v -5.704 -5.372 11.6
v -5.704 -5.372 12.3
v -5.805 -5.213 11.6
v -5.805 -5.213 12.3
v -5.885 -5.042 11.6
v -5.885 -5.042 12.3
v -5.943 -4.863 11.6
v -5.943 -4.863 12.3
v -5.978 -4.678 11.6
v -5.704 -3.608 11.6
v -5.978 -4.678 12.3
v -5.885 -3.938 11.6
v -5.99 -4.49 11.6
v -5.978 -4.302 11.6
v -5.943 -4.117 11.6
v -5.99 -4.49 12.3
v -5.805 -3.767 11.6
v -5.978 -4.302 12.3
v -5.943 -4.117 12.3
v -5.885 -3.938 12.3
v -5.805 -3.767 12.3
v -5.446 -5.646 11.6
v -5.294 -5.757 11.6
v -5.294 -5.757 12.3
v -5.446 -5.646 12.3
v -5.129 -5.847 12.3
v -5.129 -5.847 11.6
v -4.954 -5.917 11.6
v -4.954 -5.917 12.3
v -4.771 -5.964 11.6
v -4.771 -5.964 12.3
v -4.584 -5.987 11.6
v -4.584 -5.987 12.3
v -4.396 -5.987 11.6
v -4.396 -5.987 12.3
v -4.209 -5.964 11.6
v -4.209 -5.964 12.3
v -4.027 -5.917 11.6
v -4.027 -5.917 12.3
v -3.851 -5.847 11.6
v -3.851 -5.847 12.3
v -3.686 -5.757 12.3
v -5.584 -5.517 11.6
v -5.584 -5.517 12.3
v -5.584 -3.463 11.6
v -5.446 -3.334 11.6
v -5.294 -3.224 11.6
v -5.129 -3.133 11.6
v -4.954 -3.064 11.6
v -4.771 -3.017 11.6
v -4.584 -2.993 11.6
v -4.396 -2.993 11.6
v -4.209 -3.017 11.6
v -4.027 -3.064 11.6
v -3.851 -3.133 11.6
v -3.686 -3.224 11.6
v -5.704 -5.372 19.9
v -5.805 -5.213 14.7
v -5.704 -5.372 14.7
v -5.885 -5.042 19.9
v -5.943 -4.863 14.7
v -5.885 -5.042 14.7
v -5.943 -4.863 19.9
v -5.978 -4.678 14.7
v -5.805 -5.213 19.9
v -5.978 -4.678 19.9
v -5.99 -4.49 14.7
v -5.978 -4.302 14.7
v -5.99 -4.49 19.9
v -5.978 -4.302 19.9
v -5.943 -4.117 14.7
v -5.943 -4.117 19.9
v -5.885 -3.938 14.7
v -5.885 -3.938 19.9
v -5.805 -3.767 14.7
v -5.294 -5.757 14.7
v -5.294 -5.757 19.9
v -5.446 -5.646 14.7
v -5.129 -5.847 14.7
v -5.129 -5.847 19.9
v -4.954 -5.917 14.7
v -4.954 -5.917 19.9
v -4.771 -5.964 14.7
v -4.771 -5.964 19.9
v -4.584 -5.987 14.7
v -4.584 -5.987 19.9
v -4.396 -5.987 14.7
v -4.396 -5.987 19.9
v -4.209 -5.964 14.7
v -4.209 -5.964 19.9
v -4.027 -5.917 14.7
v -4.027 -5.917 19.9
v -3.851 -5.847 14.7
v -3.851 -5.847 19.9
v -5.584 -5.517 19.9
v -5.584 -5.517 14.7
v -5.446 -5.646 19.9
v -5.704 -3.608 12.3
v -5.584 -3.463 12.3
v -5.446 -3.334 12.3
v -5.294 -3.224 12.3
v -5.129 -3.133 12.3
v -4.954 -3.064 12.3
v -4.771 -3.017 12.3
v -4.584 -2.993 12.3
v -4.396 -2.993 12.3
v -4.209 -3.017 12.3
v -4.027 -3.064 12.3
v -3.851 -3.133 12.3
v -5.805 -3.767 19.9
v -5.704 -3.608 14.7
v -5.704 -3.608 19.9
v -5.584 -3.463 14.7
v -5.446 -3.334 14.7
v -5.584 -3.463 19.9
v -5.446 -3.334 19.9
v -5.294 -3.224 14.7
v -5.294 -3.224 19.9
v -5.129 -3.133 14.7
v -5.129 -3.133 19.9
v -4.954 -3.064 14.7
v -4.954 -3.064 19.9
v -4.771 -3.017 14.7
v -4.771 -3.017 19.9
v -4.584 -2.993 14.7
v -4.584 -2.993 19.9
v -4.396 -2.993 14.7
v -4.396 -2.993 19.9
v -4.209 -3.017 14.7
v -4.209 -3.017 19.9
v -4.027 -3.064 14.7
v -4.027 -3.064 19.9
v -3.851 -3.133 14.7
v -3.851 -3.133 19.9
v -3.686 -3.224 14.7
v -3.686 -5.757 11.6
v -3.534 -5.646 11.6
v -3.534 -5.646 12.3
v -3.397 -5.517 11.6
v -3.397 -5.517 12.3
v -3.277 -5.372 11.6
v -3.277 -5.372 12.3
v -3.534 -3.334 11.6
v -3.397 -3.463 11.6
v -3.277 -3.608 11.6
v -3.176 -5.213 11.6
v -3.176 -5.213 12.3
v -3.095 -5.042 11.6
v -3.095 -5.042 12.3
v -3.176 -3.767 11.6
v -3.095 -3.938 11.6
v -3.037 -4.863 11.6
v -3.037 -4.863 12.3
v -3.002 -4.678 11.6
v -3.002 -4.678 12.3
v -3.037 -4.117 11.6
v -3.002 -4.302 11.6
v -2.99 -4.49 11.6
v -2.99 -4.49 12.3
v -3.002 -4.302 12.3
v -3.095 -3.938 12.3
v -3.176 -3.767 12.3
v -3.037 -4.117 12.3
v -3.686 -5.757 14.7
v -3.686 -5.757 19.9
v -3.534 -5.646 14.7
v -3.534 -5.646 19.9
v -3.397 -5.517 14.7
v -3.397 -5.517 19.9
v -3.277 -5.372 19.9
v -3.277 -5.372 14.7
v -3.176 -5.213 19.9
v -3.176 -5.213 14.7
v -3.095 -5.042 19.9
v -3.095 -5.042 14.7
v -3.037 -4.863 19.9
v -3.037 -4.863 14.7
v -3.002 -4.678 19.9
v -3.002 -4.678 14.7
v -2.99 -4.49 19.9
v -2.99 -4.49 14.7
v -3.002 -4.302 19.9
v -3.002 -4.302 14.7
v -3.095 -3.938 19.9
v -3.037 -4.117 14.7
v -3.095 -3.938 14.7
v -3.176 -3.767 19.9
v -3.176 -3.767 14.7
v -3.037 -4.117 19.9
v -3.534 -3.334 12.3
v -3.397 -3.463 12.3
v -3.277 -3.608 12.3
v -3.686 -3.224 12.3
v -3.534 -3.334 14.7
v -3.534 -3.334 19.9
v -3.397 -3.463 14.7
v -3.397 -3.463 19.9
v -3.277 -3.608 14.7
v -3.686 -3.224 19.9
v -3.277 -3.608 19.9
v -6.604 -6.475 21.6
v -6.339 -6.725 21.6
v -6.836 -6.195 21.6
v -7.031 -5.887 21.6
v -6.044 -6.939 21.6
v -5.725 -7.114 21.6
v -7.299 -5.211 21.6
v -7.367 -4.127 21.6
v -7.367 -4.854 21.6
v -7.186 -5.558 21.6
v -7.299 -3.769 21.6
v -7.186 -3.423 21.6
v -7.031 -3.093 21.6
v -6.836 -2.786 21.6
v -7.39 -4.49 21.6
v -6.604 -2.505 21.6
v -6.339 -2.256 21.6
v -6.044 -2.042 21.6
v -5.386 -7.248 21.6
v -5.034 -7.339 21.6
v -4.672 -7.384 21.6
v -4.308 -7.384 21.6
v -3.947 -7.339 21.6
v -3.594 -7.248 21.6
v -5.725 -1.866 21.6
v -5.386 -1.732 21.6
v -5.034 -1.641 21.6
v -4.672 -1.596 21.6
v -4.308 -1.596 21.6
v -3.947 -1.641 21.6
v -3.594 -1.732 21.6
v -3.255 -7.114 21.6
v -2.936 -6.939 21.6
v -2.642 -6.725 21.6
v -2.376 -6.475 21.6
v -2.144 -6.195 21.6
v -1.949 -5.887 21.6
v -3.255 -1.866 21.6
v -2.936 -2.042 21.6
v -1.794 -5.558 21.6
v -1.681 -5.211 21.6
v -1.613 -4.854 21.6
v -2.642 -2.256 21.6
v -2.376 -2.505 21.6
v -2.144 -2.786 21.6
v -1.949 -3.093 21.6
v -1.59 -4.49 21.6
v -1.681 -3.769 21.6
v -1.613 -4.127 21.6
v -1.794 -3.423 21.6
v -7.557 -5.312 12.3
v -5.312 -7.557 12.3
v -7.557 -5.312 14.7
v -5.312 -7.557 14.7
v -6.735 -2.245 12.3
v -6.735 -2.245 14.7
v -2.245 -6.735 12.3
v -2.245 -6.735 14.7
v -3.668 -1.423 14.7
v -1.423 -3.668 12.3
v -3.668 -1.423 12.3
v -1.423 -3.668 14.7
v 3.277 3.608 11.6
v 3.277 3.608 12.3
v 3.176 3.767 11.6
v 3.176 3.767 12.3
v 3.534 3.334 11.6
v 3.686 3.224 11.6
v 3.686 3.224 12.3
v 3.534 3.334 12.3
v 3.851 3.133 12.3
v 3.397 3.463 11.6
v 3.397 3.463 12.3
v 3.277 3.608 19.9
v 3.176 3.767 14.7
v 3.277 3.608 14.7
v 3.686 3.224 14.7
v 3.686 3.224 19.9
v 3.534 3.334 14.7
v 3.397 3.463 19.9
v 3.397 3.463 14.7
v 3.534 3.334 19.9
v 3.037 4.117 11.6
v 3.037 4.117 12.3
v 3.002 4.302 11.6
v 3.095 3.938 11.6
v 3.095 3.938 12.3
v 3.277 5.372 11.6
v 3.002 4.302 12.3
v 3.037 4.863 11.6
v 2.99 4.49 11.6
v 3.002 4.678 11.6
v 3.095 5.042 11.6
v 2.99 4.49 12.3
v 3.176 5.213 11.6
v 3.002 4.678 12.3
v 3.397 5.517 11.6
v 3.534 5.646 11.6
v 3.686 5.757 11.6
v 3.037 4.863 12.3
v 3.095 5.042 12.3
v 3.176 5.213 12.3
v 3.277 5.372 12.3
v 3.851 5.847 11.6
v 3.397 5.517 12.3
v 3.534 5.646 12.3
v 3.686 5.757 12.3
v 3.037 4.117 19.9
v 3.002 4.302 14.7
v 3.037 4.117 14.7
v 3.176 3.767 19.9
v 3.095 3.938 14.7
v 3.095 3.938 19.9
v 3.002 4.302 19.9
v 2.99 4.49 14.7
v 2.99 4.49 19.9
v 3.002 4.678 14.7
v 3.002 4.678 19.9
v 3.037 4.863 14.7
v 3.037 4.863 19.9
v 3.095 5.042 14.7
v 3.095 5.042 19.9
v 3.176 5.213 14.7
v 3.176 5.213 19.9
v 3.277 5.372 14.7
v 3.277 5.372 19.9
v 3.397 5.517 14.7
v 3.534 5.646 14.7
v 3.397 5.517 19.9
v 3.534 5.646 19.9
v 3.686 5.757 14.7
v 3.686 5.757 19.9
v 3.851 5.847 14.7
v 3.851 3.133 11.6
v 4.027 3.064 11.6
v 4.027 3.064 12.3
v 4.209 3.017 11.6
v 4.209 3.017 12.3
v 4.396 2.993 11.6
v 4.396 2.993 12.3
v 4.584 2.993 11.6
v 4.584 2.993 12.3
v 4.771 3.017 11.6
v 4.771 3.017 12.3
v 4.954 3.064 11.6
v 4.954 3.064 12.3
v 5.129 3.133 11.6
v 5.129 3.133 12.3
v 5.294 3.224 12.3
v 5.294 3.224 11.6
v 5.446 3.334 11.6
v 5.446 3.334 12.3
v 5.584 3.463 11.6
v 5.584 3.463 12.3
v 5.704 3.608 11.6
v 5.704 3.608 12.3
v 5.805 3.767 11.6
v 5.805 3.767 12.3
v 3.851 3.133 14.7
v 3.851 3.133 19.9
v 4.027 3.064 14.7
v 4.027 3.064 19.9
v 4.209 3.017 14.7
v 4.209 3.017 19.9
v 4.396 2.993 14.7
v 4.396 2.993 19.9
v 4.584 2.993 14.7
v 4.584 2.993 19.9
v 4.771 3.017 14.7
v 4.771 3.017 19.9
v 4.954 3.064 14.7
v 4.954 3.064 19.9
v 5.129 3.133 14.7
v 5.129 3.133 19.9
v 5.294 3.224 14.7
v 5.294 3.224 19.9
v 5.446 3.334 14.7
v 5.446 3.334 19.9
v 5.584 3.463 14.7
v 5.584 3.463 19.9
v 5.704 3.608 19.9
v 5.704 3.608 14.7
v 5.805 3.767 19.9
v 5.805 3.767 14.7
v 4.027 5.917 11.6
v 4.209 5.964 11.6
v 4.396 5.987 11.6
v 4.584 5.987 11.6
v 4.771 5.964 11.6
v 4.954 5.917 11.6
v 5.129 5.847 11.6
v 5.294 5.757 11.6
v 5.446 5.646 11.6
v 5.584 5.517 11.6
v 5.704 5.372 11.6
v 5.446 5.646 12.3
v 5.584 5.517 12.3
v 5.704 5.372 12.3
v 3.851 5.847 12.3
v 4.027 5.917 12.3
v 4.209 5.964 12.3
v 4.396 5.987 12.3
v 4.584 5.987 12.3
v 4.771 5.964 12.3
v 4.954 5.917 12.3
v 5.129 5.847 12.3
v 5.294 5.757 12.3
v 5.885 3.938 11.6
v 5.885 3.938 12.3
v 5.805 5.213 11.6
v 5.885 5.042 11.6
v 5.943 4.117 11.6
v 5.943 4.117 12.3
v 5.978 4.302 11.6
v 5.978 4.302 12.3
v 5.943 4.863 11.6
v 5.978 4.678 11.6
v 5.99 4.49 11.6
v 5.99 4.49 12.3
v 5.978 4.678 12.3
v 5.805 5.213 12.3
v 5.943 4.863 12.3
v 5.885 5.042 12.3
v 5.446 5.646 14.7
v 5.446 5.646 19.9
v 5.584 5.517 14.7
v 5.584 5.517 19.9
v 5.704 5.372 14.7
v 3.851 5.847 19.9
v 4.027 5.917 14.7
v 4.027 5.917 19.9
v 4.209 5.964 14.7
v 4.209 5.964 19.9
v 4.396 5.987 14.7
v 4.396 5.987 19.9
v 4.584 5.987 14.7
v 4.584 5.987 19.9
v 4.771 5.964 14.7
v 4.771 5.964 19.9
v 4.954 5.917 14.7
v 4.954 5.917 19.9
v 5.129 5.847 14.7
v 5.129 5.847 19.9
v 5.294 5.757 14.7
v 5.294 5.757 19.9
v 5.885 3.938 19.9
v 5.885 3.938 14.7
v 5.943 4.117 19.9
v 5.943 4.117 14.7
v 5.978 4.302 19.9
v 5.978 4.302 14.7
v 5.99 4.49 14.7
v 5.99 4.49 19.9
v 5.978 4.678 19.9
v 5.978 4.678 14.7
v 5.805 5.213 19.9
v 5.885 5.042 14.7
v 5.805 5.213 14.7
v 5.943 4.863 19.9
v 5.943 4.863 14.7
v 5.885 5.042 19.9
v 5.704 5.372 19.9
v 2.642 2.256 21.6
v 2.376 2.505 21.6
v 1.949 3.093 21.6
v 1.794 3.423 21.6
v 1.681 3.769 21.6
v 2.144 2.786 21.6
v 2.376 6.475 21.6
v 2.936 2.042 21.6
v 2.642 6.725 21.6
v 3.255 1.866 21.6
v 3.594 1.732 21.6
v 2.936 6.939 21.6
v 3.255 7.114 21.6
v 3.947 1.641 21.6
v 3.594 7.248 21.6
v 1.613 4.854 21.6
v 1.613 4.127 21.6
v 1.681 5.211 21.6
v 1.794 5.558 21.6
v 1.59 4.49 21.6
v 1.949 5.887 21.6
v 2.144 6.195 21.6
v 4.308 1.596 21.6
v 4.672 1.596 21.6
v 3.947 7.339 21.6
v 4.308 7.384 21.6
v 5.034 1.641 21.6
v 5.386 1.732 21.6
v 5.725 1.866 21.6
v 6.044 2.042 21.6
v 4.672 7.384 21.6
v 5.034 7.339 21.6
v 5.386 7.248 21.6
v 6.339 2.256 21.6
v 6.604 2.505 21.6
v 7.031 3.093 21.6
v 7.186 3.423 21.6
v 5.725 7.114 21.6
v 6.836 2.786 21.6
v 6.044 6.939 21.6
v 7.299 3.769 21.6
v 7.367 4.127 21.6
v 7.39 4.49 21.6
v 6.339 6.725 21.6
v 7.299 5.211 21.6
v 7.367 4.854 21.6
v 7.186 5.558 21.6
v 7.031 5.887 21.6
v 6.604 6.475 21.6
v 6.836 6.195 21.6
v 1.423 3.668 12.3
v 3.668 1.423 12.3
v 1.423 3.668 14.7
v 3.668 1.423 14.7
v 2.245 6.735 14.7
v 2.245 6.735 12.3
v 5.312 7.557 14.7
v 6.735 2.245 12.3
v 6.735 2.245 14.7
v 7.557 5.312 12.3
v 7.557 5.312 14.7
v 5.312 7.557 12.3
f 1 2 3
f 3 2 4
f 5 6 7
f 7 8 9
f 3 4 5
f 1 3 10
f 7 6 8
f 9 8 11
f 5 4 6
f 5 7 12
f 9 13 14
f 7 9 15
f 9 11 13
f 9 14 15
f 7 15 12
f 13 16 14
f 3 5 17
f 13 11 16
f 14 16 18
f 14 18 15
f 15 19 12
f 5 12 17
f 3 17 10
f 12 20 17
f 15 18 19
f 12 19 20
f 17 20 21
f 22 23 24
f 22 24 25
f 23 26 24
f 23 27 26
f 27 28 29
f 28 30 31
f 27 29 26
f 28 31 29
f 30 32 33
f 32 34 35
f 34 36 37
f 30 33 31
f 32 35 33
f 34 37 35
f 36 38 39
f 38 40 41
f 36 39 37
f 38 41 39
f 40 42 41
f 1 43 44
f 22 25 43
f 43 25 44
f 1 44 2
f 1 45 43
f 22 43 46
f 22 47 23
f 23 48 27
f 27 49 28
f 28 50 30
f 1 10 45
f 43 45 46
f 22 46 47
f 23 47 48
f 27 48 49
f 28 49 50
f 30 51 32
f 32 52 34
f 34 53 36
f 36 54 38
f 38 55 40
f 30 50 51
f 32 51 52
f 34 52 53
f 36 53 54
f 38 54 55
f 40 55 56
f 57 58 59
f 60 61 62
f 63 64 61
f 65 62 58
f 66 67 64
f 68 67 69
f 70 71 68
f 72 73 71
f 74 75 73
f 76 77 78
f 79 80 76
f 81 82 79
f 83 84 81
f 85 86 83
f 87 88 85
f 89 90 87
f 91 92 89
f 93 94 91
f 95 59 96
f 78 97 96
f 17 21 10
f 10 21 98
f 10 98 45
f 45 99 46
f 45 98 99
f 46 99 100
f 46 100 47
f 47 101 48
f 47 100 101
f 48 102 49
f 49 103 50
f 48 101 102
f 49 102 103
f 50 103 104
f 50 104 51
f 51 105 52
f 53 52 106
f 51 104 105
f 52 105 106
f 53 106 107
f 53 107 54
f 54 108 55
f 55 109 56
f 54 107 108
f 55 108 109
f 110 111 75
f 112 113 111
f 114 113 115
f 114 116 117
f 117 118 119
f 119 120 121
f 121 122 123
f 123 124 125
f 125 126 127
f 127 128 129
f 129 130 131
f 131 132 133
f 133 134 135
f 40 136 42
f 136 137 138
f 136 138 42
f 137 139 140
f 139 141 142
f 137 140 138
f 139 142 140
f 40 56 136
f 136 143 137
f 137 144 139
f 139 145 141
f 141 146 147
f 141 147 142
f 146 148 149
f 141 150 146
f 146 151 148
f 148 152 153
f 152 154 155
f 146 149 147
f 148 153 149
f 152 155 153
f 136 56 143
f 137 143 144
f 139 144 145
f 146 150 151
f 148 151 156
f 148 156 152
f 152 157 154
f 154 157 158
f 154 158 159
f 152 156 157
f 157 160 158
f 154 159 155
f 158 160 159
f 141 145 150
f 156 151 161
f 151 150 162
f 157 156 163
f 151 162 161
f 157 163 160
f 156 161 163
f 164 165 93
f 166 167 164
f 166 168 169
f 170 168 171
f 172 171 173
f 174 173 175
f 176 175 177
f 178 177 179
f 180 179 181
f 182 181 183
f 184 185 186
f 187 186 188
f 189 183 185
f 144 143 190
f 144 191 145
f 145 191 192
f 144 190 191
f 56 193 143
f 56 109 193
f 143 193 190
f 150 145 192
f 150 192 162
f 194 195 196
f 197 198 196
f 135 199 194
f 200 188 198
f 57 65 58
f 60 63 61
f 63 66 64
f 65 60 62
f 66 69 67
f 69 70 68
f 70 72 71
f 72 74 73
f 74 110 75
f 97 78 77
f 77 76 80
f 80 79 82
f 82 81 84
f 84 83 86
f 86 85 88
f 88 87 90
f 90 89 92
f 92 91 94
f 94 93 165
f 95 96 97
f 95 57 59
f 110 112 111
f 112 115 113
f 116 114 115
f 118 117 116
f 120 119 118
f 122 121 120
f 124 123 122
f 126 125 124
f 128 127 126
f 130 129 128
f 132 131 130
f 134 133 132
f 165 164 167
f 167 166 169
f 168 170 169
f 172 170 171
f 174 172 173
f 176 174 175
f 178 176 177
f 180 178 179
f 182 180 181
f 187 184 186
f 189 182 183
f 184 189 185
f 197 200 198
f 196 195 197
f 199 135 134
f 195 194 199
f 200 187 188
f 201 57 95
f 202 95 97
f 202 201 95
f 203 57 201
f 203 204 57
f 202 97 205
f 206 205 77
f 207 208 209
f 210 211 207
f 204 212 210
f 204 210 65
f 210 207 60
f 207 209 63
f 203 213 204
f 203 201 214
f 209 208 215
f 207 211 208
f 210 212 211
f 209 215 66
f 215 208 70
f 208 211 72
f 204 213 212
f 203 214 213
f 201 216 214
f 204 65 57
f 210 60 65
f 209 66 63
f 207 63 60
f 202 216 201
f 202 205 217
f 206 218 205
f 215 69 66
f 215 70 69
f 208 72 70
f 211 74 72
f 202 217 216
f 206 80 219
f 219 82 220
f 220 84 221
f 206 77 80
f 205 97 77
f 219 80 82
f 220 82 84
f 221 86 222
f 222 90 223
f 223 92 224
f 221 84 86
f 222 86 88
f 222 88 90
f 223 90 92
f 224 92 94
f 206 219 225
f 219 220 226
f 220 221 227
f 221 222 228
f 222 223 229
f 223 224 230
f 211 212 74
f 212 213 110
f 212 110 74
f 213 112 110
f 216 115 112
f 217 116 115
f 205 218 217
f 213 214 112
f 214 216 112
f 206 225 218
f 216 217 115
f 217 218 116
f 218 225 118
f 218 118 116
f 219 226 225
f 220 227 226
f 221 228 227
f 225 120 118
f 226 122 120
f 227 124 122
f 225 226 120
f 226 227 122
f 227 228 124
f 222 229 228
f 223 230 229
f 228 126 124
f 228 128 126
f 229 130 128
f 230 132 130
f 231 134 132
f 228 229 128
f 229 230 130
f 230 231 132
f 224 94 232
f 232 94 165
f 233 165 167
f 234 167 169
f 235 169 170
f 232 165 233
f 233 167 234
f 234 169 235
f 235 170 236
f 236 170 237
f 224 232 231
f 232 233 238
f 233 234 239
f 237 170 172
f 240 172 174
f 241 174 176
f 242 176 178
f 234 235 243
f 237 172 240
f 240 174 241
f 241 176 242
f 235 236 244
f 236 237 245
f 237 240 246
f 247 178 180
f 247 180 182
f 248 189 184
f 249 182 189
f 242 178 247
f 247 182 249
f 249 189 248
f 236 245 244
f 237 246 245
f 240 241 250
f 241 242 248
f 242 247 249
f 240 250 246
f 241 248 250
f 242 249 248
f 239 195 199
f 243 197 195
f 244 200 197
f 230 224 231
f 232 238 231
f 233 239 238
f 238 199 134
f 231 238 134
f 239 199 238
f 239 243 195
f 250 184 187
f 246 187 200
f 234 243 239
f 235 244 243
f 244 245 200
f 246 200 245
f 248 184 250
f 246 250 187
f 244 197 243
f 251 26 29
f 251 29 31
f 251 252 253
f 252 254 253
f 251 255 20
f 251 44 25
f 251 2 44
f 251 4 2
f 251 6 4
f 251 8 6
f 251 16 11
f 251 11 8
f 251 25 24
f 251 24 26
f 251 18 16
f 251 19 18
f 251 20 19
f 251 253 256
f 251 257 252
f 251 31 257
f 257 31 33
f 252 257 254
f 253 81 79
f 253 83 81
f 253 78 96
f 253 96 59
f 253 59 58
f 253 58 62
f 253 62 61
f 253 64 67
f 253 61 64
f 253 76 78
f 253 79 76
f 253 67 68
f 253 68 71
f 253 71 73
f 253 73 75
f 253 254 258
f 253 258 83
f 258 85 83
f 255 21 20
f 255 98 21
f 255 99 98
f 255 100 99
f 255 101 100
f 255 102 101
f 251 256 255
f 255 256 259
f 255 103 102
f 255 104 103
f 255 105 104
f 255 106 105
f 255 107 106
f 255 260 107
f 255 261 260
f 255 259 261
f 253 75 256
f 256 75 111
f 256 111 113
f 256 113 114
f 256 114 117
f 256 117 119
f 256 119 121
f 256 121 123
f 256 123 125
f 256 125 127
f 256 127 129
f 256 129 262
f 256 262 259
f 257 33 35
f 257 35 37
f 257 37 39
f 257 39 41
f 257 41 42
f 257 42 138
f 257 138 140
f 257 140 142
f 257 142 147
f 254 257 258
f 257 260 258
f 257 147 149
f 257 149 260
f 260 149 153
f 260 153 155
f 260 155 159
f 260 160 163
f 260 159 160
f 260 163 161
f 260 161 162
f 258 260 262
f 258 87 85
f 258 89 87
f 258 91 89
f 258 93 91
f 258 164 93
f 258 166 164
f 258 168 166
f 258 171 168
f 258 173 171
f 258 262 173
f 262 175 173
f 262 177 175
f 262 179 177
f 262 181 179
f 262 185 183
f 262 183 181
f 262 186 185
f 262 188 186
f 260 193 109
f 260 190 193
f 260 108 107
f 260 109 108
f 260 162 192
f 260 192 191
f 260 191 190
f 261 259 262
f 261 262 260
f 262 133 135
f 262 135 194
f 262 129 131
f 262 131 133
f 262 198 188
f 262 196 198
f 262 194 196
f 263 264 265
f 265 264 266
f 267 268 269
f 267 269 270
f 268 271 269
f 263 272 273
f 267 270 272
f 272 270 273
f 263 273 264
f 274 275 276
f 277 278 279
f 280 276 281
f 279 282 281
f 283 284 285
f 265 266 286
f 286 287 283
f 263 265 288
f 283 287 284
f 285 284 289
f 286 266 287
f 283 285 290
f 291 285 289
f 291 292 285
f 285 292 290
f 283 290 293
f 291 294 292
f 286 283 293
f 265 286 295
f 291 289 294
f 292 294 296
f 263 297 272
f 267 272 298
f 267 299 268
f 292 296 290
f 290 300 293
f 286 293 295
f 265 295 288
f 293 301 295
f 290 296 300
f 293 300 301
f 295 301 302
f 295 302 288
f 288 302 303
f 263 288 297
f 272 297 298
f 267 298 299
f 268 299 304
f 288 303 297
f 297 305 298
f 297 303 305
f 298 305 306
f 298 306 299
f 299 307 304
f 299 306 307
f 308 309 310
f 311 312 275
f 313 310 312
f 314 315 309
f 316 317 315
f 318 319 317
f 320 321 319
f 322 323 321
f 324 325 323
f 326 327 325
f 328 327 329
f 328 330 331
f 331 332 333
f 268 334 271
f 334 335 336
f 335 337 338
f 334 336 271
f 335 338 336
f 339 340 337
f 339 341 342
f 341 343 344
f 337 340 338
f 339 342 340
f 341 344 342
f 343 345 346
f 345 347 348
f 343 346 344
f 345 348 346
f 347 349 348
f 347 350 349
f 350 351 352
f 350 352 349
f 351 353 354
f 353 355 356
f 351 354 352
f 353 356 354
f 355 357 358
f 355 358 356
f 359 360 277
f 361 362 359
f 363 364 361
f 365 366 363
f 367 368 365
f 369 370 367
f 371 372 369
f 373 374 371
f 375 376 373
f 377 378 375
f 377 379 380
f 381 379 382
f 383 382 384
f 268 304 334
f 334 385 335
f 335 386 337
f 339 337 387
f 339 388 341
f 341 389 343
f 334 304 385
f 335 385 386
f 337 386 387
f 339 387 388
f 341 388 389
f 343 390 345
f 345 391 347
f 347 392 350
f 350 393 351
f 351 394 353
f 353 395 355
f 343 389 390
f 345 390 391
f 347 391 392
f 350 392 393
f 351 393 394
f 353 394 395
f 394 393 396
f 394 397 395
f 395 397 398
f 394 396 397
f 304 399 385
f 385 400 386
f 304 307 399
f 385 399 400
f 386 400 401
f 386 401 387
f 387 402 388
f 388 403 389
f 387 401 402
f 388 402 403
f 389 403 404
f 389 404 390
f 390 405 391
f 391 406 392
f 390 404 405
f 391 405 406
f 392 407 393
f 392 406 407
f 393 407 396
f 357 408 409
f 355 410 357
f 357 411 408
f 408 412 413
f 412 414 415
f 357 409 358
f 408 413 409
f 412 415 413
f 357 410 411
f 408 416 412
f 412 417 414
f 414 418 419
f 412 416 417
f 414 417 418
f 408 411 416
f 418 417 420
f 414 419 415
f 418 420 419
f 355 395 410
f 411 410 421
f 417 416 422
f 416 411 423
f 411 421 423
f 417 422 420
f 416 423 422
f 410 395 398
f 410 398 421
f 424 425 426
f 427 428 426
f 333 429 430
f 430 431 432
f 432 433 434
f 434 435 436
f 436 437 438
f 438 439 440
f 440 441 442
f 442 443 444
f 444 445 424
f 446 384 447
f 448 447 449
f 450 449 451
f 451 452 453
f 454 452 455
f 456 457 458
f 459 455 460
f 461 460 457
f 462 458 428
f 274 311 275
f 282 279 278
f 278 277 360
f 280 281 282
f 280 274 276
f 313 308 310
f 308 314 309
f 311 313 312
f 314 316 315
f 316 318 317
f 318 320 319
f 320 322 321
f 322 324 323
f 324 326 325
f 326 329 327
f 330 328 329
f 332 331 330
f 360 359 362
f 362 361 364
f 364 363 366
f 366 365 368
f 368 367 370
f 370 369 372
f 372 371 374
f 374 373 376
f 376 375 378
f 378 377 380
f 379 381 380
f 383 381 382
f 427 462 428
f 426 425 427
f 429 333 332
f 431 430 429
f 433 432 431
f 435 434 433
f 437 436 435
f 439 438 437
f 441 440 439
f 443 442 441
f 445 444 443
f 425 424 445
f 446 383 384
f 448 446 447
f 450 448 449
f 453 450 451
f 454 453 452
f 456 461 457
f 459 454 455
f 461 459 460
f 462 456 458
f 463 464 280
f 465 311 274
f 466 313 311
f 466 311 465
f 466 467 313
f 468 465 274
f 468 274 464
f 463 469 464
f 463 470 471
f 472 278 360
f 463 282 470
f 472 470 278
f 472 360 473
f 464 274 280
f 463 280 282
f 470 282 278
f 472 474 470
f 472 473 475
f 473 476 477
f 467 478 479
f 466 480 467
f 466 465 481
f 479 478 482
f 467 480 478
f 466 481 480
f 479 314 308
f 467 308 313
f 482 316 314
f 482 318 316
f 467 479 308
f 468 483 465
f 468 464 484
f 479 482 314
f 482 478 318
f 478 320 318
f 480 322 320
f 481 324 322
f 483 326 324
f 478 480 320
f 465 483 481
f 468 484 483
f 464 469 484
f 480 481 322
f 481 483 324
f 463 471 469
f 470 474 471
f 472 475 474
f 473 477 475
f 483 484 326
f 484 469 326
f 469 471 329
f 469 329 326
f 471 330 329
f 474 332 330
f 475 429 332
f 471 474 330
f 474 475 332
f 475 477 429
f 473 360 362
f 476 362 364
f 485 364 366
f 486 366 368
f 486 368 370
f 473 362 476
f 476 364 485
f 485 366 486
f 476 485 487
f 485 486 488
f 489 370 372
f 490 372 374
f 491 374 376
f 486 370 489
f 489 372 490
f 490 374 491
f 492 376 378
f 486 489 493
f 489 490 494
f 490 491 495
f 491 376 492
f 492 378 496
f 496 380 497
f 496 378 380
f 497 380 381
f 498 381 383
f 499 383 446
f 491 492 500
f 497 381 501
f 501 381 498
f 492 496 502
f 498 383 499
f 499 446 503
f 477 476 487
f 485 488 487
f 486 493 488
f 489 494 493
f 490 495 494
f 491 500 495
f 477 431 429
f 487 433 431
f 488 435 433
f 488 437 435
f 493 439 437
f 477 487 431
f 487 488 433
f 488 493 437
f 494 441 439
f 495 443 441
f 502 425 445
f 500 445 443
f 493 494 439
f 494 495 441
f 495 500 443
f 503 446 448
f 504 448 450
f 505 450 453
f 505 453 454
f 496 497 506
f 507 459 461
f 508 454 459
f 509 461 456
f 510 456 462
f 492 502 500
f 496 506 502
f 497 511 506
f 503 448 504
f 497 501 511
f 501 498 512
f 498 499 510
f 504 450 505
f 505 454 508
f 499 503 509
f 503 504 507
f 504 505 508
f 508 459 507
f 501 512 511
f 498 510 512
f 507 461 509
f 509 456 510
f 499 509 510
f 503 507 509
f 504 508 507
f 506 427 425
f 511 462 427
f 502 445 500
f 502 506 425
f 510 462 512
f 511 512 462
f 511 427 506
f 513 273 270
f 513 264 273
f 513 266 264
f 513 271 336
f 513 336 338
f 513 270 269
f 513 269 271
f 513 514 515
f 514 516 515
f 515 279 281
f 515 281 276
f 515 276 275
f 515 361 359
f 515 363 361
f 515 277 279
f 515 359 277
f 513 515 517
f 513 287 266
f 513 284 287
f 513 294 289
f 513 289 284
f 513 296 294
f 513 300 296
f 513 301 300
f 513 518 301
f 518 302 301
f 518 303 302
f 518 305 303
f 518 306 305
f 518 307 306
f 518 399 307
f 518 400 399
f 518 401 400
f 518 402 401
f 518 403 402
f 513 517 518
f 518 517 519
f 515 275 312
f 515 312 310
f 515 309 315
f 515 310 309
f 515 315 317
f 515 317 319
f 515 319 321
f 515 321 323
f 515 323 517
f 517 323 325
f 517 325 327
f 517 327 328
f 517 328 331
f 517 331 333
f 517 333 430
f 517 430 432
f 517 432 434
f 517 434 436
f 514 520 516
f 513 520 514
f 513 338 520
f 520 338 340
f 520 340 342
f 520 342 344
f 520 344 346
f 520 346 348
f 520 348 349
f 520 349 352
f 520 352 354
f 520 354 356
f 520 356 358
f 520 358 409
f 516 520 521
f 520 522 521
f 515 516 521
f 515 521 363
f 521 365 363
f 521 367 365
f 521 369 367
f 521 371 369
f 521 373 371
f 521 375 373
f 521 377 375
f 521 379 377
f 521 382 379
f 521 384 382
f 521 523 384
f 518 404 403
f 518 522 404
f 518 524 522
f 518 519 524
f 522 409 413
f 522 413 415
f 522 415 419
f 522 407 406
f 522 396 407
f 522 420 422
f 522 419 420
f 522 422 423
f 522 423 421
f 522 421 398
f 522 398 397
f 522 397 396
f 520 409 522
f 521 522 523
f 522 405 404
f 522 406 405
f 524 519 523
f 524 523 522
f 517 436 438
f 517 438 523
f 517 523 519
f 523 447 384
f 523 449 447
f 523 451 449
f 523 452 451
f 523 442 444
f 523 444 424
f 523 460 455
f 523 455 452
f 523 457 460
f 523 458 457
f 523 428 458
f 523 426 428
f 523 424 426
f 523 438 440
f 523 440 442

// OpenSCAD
$fn = 50;

difference() {
	union() {
		translate(v = [-4.490128060534576, -4.490128060534576, 11.600000000000001]) {
			cylinder(h = 10, r = 1.5);
		}
		translate(v = [-4.490128060534576, -4.490128060534576, 19.900000000000002]) {
			cylinder(h = 1.7, r1 = 1.5, r2 = 2.9);
		}
		translate(v = [-4.490128060534576, -4.490128060534576, 12.3]) {
			rotate(a = [0, 0, -105.0]) {
				linear_extrude(height = 2.4) {
					polygon(points = [[3.1754264805429417, 0.0], [1.5877132402714713, 2.75], [-1.5877132402714702, 2.7500000000000004], [-3.1754264805429417, 3.888775875324659e-16], [-1.5877132402714722, -2.7499999999999996], [1.5877132402714687, -2.7500000000000013]]);
				}
			}
		}
		translate(v = [4.490128060534576, 4.490128060534576, 11.600000000000001]) {
			cylinder(h = 10, r = 1.5);
		}
		translate(v = [4.490128060534576, 4.490128060534576, 19.900000000000002]) {
			cylinder(h = 1.7, r1 = 1.5, r2 = 2.9);
		}
		translate(v = [4.490128060534576, 4.490128060534576, 12.3]) {
			rotate(a = [0, 0, 75.0]) {
				linear_extrude(height = 2.4) {
					polygon(points = [[3.1754264805429417, 0.0], [1.5877132402714713, 2.75], [-1.5877132402714702, 2.7500000000000004], [-3.1754264805429417, 3.888775875324659e-16], [-1.5877132402714722, -2.7499999999999996], [1.5877132402714687, -2.7500000000000013]]);
				}
			}
		}
	}
	union();
}
